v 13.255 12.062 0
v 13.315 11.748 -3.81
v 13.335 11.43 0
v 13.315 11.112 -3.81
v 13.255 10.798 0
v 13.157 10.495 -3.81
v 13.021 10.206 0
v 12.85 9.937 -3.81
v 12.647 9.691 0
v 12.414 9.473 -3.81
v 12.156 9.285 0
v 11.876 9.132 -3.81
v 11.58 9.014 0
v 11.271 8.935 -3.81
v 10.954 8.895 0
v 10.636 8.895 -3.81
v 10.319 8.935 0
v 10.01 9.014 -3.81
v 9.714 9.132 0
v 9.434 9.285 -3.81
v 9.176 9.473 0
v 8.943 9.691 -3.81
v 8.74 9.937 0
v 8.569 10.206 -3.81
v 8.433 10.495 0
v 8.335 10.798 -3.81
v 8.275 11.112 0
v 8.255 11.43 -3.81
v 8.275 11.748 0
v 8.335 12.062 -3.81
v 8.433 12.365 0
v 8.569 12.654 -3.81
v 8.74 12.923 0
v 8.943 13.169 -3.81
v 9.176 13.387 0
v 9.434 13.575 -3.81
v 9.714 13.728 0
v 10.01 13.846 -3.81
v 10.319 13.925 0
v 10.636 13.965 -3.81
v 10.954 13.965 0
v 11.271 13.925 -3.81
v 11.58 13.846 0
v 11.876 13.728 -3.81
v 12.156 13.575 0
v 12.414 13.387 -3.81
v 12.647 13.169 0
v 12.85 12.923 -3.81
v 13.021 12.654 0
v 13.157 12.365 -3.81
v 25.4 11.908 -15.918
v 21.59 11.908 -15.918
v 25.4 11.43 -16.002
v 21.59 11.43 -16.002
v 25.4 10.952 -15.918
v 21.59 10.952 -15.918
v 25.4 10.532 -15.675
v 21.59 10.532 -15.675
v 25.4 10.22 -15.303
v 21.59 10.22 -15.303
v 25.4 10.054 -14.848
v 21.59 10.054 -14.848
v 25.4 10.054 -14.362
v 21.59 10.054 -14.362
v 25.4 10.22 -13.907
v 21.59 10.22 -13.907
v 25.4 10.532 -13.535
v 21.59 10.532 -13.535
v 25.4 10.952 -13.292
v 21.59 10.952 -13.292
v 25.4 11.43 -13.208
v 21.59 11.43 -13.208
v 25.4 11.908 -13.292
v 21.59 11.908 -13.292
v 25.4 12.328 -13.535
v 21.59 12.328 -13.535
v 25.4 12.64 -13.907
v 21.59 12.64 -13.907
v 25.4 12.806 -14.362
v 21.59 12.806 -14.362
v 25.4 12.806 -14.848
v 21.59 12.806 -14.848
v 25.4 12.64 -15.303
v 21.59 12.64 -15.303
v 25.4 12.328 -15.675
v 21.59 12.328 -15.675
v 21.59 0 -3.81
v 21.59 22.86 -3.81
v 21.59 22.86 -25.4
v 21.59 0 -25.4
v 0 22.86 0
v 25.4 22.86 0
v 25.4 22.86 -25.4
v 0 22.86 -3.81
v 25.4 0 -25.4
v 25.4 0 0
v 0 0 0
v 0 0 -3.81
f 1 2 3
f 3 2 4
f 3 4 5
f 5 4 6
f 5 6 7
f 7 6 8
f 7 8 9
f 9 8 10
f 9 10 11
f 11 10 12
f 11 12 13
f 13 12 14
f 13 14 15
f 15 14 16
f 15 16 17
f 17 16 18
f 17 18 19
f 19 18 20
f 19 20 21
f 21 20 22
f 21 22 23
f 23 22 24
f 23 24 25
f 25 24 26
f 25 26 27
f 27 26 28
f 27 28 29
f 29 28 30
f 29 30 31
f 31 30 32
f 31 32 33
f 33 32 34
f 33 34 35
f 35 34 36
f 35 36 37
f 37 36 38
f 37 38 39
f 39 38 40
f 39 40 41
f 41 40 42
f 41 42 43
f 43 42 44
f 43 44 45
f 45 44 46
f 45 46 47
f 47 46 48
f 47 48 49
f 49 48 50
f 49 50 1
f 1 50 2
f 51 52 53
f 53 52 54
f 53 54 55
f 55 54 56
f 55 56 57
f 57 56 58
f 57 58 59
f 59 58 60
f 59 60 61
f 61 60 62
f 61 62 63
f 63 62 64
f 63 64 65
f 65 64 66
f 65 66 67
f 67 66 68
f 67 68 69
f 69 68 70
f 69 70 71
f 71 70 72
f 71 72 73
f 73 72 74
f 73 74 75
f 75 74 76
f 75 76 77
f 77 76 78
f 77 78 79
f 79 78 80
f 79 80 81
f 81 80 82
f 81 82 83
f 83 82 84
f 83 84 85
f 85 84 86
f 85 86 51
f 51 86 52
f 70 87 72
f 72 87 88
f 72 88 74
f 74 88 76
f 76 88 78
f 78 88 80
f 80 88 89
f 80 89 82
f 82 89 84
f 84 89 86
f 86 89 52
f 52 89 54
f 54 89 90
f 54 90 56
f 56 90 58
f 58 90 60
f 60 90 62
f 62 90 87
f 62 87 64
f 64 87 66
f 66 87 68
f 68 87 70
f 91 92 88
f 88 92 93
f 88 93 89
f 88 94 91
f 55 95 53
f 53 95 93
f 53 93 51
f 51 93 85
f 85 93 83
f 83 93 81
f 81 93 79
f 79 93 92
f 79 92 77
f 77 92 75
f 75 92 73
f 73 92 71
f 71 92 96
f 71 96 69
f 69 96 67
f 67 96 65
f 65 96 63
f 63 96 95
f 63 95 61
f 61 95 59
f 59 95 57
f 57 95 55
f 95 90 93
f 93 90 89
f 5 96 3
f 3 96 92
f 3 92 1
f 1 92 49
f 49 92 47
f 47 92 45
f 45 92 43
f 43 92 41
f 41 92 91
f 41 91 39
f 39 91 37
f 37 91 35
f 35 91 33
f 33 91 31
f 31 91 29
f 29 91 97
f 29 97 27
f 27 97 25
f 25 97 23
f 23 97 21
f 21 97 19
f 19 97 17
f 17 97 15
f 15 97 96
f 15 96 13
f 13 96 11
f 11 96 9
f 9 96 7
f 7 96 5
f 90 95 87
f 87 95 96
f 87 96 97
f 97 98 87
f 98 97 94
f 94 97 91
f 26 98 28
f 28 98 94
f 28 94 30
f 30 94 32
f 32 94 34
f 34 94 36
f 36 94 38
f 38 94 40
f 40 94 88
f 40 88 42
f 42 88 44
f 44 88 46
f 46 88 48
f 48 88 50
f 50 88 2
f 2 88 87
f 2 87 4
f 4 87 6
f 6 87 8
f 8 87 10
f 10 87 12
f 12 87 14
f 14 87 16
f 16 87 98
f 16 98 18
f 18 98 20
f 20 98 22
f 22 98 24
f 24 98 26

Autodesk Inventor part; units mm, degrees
ref_plane "YZ Plane" through (0, 0, 0) normal (1, 0, 0) x (0, 1, 0)
ref_plane "XZ Plane" through (0, 0, 0) normal (0, 1, 0) x (-1, 0, 0)
ref_plane "XY Plane" through (0, 0, 0) normal (0, 0, 1) x (1, 0, 0)
sketch "Sketch1" plane through (0, 0, 0) normal (0, 1, 0) x (-1, 0, 0)
  line L0 (0, 0) -> (-25.4, 0)
  line L1 (-25.4, 0) -> (-25.4, -3.81)
  line L2 (-25.4, -3.81) -> (0, -3.81)
  line L3 (0, -3.81) -> (0, 0)
  line L4 (-25.4, 0) -> (-21.59, 0)
  line L5 (-21.59, 0) -> (-21.59, -25.4)
  line L6 (-21.59, -25.4) -> (-25.4, -25.4)
  line L7 (-25.4, -25.4) -> (-25.4, 0)
  dimension "d0" = 25.4
  dimension "d1" = 3.81
  dimension "d2" = 3.81
  dimension "d3" = 25.4
extrude "Extrusion1" add sketch "Sketch1" along normal blind 22.86
sketch "Sketch2" plane through (21.59, 0, -25.4) normal (-1, 0, 0) x (0, 0, 1)
  line L0 (0, 0) -> (0, 22.86) projected
  line L1 (0, 11.43) -> (10.795, 11.43)
  point P0 (25.4, 0)
  dimension "d9" = 10.795
hole "Hole1" at (21.59, 11.43, -14.605) direction (1, 0, 0) diameter 2.794 end through all
sketch "Sketch3" plane through (21.59, 0, -3.81) normal (0, 0, -1) x (-1, 0, 0)
  line L0 (21.59, 0) -> (21.59, 22.86) projected
  line L1 (21.59, 11.43) -> (10.795, 11.43)
  dimension "d17" = 10.795
hole "Hole2" at (10.795, 11.43, -3.81) direction (0, 0, 1) diameter 5.08 end through all
properties part number "part v5"
